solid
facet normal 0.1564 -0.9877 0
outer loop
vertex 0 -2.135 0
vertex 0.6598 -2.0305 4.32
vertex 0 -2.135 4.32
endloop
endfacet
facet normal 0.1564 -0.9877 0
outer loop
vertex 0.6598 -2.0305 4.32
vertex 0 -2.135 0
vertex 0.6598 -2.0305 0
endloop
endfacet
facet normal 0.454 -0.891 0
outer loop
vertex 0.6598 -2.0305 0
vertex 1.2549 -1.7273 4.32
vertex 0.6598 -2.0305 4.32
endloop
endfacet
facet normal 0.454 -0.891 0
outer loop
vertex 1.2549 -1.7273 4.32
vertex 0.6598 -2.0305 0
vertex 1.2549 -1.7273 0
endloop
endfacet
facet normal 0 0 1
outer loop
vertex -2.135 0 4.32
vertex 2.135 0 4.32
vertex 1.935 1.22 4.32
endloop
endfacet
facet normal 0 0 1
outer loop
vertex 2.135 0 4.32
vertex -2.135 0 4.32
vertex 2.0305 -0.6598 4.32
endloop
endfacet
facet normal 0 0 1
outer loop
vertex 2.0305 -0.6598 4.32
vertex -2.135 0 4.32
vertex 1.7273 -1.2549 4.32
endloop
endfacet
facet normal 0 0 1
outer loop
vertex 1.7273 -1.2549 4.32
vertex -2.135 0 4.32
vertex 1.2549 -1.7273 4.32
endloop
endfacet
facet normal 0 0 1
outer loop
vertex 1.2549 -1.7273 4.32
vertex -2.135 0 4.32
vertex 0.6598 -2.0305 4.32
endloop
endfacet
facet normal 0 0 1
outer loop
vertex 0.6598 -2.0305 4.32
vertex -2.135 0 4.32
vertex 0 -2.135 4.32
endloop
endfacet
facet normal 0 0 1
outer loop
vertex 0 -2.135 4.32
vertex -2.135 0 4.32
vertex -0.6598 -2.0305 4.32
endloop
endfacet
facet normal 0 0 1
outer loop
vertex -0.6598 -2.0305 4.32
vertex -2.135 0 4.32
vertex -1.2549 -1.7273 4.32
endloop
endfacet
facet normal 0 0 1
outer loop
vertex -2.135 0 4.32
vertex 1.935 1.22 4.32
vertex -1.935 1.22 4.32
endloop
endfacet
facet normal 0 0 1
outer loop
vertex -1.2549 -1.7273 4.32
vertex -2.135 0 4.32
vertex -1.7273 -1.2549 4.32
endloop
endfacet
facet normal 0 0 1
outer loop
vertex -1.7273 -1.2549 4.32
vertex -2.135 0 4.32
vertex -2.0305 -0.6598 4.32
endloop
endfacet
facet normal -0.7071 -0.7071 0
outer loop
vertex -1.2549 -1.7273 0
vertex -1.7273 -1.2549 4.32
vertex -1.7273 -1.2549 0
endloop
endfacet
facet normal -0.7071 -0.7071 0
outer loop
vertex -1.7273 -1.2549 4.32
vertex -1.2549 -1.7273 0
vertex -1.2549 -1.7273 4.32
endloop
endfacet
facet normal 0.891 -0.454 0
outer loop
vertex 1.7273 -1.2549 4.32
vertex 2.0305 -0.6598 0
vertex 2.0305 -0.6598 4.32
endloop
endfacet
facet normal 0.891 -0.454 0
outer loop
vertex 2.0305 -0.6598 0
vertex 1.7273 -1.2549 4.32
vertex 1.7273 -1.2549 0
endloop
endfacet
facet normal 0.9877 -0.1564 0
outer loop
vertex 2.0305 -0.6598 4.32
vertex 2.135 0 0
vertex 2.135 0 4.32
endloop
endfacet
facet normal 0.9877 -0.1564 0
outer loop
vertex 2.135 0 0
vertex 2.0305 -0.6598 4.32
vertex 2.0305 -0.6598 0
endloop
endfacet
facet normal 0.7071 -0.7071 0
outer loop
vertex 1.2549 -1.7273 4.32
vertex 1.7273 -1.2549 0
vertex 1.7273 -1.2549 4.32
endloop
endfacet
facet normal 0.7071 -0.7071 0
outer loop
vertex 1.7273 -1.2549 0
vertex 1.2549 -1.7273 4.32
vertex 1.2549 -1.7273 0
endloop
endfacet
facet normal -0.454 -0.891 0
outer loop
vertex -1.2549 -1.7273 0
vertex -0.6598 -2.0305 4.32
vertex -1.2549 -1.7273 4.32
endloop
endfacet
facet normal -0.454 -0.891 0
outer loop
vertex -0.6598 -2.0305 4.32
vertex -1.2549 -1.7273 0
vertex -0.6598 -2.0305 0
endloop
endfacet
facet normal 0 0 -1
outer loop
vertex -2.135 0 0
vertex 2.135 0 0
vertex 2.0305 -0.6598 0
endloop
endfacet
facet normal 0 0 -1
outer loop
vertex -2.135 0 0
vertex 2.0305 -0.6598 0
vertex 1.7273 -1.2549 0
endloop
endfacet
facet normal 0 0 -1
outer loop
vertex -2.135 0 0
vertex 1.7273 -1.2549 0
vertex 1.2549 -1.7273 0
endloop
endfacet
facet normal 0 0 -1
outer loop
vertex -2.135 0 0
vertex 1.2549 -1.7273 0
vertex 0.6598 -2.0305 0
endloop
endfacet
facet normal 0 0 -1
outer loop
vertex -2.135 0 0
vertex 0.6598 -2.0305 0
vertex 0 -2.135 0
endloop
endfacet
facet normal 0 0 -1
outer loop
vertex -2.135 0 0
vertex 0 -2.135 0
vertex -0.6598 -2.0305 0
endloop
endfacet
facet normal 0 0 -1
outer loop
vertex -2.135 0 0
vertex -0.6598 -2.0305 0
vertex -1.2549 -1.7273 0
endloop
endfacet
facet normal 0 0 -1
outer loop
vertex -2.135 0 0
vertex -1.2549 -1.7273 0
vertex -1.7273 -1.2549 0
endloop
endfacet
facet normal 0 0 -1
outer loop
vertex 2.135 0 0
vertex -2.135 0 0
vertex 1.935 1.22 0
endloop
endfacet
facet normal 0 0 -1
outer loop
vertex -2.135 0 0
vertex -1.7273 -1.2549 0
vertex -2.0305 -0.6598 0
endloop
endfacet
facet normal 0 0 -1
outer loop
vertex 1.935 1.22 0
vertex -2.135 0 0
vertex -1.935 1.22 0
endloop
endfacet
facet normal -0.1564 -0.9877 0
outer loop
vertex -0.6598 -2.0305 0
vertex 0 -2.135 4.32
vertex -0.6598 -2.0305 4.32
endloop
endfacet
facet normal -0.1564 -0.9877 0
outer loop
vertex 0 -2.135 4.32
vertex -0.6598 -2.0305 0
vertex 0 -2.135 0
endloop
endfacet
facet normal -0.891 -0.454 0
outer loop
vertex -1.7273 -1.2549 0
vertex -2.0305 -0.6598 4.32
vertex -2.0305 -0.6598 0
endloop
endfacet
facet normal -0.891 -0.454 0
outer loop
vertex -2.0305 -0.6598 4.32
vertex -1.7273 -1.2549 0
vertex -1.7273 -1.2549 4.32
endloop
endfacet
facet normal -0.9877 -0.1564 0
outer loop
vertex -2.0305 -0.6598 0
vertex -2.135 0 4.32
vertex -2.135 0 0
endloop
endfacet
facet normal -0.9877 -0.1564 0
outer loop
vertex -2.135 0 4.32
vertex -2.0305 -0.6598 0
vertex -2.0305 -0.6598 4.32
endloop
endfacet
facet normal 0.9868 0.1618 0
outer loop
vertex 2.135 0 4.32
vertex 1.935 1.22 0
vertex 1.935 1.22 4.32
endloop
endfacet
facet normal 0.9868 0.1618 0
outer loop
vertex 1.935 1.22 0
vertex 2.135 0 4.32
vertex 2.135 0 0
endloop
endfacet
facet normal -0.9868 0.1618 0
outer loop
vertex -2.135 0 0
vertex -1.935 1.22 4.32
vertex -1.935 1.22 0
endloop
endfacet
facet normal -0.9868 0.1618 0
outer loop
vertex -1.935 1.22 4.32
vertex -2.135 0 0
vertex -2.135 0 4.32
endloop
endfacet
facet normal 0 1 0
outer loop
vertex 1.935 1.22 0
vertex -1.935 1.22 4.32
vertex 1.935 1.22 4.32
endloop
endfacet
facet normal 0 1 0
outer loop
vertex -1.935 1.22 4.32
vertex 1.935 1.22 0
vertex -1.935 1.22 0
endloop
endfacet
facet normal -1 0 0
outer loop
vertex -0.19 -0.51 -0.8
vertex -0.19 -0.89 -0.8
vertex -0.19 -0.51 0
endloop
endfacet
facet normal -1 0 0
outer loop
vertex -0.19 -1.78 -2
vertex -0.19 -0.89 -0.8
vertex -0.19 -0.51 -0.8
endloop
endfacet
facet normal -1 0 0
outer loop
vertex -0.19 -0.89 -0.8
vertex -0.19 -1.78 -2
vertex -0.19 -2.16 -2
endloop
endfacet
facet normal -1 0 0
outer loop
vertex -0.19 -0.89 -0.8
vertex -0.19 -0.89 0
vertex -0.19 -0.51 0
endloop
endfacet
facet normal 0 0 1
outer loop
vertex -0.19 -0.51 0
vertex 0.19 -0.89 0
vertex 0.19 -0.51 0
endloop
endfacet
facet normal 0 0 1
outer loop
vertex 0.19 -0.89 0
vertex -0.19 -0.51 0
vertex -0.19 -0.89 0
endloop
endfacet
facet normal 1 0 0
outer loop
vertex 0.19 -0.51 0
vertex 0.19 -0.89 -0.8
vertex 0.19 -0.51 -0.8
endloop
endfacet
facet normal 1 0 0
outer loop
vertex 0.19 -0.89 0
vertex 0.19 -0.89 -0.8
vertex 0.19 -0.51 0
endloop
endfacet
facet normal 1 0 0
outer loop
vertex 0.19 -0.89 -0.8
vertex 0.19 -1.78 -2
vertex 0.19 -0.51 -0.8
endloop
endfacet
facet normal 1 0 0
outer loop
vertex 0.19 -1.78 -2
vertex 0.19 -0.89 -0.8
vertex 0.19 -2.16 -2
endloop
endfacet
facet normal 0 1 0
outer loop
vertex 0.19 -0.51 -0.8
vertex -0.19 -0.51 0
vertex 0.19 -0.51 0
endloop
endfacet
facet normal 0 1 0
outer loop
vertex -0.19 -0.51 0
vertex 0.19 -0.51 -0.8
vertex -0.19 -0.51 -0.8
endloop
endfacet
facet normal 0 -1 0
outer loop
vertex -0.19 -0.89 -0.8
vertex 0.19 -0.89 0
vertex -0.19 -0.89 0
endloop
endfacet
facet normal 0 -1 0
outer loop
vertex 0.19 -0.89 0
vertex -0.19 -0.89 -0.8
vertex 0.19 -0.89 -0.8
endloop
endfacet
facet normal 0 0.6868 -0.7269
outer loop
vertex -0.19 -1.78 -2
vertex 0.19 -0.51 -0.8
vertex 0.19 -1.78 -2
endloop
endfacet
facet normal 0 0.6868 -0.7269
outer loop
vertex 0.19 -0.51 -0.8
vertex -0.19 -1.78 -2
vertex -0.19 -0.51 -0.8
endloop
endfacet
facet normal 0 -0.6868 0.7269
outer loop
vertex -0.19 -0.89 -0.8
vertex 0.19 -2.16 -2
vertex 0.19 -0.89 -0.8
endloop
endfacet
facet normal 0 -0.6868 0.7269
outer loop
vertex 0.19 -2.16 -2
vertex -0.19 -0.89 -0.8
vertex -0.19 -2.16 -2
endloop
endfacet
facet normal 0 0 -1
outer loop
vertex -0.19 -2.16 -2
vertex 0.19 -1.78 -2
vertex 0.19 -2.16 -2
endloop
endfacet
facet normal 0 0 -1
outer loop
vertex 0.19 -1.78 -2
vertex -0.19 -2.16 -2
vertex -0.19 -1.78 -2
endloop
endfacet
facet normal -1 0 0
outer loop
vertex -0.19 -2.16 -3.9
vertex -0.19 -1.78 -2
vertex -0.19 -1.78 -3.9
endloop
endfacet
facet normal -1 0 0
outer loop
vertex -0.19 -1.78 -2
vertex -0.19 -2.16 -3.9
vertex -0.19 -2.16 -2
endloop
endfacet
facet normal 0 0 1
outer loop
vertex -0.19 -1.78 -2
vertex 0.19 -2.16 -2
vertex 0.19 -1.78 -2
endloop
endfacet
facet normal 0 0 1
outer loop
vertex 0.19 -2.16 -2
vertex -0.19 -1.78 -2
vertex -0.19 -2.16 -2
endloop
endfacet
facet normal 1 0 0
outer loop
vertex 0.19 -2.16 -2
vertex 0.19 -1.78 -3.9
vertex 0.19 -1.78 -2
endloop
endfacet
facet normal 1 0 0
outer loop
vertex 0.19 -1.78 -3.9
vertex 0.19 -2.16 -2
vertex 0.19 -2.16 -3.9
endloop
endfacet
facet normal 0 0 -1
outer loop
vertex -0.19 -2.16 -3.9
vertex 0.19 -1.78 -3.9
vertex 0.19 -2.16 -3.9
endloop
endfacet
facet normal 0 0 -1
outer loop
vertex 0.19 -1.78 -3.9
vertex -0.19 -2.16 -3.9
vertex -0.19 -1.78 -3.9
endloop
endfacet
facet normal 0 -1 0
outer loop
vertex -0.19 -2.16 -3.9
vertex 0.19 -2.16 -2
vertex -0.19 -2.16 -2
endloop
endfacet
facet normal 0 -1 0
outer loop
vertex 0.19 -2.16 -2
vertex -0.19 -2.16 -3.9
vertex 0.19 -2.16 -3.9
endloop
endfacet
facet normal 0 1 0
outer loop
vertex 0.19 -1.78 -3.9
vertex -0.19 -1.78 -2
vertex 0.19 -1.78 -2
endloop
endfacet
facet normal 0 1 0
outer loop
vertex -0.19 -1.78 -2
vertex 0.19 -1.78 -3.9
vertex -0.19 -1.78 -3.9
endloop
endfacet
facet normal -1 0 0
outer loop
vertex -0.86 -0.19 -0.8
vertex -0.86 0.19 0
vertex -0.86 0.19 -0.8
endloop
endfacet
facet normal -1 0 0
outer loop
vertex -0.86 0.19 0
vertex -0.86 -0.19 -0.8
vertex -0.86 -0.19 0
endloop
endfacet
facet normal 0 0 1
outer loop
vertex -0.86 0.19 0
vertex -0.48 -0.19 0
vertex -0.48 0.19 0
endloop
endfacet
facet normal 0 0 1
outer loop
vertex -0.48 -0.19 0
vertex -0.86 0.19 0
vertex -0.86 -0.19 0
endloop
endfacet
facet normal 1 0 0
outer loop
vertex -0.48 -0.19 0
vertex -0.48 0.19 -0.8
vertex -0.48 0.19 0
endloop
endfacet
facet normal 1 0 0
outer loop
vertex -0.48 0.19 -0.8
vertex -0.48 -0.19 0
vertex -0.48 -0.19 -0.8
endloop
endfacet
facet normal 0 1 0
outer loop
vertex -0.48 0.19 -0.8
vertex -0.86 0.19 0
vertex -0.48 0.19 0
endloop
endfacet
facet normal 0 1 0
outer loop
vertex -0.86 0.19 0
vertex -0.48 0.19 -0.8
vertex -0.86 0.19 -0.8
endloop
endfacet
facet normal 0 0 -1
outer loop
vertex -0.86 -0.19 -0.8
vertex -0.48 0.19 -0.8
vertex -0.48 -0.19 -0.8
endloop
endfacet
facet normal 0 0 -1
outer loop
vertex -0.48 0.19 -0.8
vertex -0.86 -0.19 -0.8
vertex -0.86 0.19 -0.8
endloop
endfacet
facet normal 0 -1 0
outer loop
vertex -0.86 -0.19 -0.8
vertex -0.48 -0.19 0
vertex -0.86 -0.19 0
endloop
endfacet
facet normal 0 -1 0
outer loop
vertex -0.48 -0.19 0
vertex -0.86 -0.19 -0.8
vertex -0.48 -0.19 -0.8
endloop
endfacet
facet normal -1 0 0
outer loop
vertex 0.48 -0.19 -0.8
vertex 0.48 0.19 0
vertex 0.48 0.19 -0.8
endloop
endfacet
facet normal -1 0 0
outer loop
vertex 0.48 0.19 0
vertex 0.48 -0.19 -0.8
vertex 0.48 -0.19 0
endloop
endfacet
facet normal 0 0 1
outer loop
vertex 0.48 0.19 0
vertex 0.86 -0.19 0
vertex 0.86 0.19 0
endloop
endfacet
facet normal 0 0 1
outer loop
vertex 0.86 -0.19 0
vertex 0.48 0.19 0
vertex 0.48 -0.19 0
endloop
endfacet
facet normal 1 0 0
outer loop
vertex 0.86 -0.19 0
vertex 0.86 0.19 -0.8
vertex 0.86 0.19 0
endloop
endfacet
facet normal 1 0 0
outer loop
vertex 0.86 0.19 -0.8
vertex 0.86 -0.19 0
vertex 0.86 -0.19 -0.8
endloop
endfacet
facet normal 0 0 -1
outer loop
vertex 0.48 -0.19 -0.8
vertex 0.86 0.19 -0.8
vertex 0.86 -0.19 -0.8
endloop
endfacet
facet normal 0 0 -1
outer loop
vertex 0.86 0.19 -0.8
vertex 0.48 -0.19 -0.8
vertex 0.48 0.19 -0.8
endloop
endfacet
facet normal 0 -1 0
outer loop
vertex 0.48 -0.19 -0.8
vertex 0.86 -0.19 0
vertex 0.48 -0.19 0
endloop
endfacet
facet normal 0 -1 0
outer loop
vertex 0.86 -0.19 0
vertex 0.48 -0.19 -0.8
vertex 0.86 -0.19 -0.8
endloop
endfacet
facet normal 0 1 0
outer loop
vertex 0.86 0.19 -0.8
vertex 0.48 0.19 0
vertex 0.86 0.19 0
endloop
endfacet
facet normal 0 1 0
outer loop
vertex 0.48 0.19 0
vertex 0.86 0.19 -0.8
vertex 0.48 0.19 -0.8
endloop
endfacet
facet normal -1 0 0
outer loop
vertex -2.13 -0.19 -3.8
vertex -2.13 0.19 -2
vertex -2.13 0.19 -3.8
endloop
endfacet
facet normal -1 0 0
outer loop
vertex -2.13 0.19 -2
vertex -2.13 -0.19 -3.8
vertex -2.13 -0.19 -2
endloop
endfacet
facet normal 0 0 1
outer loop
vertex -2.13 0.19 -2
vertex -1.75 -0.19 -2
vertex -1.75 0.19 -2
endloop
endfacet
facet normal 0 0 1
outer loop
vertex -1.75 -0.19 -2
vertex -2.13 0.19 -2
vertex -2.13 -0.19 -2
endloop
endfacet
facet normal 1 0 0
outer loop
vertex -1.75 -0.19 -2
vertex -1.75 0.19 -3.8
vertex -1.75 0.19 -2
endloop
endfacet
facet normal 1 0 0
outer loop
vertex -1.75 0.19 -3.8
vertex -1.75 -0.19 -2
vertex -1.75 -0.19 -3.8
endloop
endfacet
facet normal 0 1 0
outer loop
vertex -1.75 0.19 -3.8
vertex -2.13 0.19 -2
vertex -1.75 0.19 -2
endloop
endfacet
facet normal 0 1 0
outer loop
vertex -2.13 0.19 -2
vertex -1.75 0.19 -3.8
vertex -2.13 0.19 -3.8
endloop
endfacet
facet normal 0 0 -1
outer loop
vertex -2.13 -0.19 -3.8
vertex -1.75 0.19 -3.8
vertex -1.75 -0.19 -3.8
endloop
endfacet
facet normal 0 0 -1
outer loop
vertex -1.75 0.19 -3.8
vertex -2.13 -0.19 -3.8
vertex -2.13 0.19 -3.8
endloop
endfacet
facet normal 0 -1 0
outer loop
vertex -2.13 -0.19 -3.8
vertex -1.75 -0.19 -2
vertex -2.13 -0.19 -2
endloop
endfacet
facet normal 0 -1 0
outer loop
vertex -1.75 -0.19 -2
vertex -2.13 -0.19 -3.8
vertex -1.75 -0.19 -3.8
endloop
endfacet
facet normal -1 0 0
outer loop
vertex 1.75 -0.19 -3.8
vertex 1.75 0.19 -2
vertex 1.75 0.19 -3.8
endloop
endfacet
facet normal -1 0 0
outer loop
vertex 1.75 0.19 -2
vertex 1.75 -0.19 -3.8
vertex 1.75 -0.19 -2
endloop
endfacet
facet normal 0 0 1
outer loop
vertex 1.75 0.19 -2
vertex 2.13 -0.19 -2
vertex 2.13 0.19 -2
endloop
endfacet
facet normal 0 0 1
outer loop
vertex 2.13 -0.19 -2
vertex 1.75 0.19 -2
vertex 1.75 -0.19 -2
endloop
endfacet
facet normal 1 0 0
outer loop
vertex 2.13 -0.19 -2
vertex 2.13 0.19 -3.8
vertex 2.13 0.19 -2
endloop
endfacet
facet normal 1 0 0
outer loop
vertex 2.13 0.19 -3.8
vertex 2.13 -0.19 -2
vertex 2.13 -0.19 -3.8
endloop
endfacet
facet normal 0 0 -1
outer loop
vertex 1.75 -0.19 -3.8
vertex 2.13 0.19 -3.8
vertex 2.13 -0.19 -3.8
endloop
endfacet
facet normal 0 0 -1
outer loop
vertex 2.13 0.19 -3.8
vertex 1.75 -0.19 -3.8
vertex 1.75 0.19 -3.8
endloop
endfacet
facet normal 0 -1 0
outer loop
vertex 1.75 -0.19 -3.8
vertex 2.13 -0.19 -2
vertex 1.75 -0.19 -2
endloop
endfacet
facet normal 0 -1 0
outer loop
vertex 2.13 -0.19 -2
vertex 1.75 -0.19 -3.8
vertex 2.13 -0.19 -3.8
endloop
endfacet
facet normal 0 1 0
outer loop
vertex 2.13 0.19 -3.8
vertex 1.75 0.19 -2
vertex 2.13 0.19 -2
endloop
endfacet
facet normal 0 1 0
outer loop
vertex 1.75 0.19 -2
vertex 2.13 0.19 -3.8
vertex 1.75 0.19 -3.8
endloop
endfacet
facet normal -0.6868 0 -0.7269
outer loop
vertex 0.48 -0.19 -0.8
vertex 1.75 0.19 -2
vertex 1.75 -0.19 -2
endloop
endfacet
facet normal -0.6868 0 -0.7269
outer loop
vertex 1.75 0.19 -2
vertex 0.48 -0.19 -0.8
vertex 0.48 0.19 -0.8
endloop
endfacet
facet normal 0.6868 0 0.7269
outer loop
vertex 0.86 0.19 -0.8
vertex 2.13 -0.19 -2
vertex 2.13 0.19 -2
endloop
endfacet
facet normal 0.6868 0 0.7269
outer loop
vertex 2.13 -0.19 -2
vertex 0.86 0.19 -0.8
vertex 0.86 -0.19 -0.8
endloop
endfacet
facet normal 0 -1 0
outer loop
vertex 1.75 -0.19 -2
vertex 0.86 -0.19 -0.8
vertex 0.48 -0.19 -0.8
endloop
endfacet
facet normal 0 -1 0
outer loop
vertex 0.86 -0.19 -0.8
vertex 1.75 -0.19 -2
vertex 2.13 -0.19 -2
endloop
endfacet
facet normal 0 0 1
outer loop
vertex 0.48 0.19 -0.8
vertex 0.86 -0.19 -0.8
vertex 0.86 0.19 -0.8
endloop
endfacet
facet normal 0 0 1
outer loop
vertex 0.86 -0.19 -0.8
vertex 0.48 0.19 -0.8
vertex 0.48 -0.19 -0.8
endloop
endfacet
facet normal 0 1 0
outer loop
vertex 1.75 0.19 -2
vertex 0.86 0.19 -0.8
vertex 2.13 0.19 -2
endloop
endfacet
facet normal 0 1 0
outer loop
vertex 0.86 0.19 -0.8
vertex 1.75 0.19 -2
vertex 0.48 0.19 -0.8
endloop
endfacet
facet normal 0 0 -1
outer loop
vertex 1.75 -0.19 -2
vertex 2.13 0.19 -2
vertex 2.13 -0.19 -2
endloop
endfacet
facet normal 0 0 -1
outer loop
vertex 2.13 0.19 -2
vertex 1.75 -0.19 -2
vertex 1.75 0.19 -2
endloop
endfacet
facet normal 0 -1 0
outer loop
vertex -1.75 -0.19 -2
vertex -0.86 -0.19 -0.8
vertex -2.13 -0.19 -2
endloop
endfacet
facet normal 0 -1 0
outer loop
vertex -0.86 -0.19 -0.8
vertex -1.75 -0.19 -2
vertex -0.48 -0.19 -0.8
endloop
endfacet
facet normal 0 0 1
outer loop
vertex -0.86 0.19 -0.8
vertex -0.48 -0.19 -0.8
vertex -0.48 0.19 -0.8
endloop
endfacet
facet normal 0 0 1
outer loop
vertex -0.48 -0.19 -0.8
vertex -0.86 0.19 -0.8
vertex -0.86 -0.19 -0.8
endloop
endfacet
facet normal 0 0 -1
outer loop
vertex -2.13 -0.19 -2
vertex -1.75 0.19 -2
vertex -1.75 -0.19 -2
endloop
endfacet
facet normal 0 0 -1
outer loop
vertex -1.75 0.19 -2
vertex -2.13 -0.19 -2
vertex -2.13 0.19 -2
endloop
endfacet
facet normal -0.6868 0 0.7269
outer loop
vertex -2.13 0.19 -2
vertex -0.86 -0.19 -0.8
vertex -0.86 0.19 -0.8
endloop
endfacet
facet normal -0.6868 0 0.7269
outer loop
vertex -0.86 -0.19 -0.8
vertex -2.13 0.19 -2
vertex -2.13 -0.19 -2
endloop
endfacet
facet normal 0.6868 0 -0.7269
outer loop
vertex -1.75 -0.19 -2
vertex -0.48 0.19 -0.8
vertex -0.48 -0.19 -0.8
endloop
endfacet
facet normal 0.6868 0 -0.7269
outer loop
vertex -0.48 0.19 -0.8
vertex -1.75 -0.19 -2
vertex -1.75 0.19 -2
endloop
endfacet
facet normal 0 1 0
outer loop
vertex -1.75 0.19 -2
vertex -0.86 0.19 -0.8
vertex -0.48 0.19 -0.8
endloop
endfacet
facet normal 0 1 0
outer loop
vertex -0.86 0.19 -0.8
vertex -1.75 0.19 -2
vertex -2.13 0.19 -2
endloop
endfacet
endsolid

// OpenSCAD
to92A = 3.45;
to92A2 = 1.22;
to92b = 0.38;
to92c = 0.38;
to92D = 4.27;
to92D1 = 3.87;
to92E = 4.32;
to92ee = 1.27;
to92ee2 = 2.54;
to92L = 5.98;
to92L1 = 3.80;
to92L2 = 0.80;
to92L3 = 2.0;
to92L4 = 1.9;

module to92body()
{
    color([0.3, 0.3, 0.3])
    translate([0, 0, to92E / 2])
    {
        linear_extrude(height = to92E, center = true)
            polygon(points = [
                [-to92D1 / 2, to92A2],
                [to92D1 / 2, to92A2],
                [to92D / 2, 0],
                [-to92D / 2, 0]]);
        intersection()
        {
            translate([0, -to92D / 2, 0])
                    cube(size = [to92D * 2, to92D, to92E * 2],
                        center = true);
                cylinder(r = to92D / 2, h = to92E, center = true,
                    $fn = 20);
        }
    }
}


module to92bulk()
{
    to92body();
    color([0.8, 0.8, 0.8])
    {
        for (j = [-1, 0, +1])
            translate([j * to92ee, 0, -to92L / 2])
                cube(size = [to92b, to92c, to92L], center = true);
    }
}
module to92sideBend()
{
    translate([-to92b, 0, 0])
        rotate(-90, [1, 0, 0])
            linear_extrude(height = to92c, center = true)
                polygon(points = [
                    [0, 0],
                    [to92b, 0],
                    [to92b + to92ee2 - to92ee, to92L3 - to92L2],
                    [to92ee2 - to92ee, to92L3 - to92L2]]);
}
module to92doubleSideBend()
{
    color([0.8, 0.8, 0.8])
    {
        for(j = [-1, +1])
            translate([j * (to92ee-0.6), 0, -to92L2 / 2])
                cube(size = [to92b, to92c, to92L2], center = true);
        for ( j = [-1, +1])
            translate([j * (to92ee2-0.6), 0,
                -(to92L1 - to92L3) / 2 - to92L3])
                cube(size = [to92b, to92c, to92L1 - to92L3],
                    center = true);
        
	translate([0, 0, -to92L2])
        {
            translate([to92ee-0.41, 0, 0])
                to92sideBend();
            translate([-to92ee+0.41, 0, 0])
                mirror([1, 0, 0]) to92sideBend();
        }
    }
}

module to92taped()
{
    to92body();
    color([0.8, 0.8, 0.8])
    {
        translate([0, 0, -to92L / 2])
            cube(size = [to92b, to92c, to92L], center = true);
        to92doubleSideBend();
    }
}


module to92leadBend()
{
    color([0.8, 0.8, 0.8]){
    translate([0, -0.7, -to92L2 / 2])
        cube(size = [to92b, to92c, to92L2], center = true);
    translate([0, -0.89, -to92L2])
        rotate(-90, [0, 0, 1])
            to92sideBend();
    translate([0, -0.7-to92ee, -(to92L3 * 2 + to92L4) / 2])
        cube(size = [to92b, to92c, to92L4], center = true);
    }
}



to92body();
to92leadBend();
to92doubleSideBend();
